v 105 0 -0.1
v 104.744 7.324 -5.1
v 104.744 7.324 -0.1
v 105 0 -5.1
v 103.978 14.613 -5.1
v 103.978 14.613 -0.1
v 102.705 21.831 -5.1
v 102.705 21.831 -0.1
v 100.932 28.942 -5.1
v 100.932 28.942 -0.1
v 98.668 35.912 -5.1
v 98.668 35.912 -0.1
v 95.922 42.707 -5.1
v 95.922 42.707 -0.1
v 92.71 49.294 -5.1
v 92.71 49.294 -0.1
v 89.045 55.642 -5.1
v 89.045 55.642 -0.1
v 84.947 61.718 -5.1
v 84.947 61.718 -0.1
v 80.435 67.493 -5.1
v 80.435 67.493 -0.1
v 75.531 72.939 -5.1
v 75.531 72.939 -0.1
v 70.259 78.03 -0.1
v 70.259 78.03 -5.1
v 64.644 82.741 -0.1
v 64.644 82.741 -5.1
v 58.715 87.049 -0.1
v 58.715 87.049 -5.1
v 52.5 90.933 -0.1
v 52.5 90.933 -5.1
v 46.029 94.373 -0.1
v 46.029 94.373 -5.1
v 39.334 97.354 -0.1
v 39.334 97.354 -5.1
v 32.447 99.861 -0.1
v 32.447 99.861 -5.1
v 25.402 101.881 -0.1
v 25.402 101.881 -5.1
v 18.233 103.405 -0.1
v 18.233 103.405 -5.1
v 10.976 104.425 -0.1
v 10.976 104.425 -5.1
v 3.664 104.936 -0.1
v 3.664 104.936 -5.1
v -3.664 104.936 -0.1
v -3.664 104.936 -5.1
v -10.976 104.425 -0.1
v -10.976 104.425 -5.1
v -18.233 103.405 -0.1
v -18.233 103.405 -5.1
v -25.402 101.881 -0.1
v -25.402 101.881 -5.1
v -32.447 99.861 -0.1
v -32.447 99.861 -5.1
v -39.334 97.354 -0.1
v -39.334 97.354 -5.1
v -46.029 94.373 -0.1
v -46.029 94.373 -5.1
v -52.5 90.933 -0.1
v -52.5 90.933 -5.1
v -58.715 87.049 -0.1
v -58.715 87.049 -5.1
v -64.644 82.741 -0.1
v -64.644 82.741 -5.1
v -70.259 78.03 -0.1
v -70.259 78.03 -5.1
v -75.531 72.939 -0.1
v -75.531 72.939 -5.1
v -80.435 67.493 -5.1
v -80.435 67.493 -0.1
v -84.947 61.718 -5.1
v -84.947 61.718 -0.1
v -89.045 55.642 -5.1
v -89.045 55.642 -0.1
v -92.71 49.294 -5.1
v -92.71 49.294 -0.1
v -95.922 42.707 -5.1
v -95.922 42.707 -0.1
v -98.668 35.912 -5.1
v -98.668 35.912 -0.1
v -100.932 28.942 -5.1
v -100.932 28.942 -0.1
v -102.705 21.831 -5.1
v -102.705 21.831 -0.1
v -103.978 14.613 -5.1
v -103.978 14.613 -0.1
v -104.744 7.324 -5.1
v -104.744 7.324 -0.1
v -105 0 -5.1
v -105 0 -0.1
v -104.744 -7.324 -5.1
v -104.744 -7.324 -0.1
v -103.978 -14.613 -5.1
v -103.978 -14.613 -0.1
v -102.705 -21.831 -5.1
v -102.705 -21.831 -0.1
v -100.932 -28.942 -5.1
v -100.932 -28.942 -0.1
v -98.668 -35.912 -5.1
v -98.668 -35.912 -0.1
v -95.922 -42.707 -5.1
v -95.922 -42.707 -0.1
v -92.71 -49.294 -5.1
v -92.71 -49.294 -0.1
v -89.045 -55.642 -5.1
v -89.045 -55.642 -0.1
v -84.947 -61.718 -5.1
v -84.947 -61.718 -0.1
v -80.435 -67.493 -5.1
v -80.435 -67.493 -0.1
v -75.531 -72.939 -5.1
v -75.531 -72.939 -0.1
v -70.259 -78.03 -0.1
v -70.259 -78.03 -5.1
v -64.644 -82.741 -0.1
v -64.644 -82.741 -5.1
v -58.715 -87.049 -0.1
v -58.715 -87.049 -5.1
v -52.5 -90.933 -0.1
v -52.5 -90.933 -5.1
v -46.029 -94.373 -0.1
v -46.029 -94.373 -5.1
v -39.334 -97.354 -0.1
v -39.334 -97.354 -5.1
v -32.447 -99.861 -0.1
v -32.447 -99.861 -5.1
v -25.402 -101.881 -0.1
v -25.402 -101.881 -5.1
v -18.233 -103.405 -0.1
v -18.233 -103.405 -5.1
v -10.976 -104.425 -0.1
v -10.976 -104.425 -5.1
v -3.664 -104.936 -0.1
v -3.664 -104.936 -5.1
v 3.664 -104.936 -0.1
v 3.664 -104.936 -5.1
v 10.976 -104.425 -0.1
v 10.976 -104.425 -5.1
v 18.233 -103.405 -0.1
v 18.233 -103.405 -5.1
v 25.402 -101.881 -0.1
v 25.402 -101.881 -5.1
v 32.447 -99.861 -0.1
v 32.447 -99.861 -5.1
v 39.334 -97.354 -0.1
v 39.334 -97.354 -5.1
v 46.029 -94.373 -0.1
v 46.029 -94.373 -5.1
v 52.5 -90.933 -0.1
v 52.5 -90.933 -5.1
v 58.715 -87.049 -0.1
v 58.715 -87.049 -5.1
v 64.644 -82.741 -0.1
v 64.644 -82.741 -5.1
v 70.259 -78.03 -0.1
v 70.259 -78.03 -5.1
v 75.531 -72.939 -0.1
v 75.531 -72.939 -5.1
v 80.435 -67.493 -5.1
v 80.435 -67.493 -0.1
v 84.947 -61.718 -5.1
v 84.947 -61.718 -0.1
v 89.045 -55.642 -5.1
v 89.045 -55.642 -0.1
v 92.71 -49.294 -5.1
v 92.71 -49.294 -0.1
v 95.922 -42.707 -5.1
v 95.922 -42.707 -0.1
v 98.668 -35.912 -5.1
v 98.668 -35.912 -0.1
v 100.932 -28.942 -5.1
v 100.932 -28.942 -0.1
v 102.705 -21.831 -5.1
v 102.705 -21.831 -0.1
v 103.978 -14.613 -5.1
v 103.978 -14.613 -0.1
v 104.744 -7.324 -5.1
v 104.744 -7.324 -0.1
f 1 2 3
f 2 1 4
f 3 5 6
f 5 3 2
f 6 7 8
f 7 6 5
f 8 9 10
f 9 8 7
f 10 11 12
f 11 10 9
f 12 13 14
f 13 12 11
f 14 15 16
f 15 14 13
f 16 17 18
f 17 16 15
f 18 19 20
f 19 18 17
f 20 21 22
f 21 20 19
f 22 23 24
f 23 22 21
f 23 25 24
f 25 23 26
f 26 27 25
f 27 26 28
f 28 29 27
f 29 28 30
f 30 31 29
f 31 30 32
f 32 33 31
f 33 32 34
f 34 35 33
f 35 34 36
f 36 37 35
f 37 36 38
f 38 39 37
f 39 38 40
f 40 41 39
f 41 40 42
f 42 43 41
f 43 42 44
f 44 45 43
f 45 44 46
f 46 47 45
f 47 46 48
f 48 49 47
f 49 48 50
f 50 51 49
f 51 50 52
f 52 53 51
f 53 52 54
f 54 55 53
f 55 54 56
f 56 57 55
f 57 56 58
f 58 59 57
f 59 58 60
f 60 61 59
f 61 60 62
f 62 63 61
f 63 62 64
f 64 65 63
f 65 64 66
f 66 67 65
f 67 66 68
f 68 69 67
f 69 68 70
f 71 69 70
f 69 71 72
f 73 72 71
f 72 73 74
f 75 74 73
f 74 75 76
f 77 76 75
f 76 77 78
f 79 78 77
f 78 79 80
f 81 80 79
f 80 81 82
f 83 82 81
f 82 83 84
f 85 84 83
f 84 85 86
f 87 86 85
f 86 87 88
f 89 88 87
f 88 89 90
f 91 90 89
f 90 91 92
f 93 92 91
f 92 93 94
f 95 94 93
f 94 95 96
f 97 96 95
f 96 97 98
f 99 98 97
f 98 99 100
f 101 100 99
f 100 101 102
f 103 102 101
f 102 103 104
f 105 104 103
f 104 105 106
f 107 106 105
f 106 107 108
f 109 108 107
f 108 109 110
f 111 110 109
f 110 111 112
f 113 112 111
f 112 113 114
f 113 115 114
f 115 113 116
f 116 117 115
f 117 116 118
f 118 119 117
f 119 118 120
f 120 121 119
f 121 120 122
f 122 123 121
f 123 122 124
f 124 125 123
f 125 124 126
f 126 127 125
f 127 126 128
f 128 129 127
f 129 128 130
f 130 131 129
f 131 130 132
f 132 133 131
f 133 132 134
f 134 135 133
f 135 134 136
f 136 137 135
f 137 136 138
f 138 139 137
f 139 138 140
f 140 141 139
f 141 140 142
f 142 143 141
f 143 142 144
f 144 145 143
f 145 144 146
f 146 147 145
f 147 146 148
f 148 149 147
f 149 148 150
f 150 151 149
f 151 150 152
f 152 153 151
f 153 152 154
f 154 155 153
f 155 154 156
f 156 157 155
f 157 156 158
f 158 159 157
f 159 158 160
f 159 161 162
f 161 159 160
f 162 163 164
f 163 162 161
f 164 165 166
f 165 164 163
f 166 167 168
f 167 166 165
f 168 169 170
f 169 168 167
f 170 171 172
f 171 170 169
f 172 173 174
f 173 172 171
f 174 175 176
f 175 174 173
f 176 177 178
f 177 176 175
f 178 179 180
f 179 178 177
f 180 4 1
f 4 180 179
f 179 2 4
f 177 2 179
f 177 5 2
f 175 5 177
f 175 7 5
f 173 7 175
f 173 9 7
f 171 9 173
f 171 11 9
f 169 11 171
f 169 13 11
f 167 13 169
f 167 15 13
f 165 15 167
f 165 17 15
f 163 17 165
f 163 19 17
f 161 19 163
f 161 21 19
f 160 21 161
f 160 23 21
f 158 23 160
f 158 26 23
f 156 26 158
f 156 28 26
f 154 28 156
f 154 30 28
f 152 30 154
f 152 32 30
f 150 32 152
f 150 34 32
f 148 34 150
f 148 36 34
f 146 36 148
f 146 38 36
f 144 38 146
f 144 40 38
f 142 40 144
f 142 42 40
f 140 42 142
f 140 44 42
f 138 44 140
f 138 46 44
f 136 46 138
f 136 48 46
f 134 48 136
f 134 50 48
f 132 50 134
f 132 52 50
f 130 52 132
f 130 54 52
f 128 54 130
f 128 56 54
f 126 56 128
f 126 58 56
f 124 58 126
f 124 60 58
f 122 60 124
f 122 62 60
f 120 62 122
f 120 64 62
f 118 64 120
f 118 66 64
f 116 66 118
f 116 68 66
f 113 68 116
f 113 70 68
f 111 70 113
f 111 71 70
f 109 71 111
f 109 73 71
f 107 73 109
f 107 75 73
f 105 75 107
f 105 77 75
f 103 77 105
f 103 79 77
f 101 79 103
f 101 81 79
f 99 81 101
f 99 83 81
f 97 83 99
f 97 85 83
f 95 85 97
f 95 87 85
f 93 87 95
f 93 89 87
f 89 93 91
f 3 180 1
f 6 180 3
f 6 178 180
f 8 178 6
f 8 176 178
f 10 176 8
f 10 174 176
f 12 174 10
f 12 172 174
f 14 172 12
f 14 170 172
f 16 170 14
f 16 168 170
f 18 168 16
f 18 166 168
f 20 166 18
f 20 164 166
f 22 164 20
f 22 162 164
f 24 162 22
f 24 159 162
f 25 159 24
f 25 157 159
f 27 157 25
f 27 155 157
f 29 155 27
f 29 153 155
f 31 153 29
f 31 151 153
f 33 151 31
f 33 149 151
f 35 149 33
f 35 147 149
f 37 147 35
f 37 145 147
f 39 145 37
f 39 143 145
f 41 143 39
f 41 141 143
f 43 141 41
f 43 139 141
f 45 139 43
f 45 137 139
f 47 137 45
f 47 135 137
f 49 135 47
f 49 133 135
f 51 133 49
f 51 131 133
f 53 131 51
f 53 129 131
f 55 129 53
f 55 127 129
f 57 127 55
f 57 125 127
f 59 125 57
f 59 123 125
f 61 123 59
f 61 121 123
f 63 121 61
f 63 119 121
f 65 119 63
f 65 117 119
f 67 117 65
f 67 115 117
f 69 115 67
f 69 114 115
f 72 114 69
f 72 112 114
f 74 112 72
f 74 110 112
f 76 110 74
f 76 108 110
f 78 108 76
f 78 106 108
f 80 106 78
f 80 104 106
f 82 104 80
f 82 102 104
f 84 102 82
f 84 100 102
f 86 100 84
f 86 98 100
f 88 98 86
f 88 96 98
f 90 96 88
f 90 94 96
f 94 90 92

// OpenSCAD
// Kossel 2020 platform for Cura

translate([0,0,-5.1]) cylinder(d=210, h=5, $fn=90);
